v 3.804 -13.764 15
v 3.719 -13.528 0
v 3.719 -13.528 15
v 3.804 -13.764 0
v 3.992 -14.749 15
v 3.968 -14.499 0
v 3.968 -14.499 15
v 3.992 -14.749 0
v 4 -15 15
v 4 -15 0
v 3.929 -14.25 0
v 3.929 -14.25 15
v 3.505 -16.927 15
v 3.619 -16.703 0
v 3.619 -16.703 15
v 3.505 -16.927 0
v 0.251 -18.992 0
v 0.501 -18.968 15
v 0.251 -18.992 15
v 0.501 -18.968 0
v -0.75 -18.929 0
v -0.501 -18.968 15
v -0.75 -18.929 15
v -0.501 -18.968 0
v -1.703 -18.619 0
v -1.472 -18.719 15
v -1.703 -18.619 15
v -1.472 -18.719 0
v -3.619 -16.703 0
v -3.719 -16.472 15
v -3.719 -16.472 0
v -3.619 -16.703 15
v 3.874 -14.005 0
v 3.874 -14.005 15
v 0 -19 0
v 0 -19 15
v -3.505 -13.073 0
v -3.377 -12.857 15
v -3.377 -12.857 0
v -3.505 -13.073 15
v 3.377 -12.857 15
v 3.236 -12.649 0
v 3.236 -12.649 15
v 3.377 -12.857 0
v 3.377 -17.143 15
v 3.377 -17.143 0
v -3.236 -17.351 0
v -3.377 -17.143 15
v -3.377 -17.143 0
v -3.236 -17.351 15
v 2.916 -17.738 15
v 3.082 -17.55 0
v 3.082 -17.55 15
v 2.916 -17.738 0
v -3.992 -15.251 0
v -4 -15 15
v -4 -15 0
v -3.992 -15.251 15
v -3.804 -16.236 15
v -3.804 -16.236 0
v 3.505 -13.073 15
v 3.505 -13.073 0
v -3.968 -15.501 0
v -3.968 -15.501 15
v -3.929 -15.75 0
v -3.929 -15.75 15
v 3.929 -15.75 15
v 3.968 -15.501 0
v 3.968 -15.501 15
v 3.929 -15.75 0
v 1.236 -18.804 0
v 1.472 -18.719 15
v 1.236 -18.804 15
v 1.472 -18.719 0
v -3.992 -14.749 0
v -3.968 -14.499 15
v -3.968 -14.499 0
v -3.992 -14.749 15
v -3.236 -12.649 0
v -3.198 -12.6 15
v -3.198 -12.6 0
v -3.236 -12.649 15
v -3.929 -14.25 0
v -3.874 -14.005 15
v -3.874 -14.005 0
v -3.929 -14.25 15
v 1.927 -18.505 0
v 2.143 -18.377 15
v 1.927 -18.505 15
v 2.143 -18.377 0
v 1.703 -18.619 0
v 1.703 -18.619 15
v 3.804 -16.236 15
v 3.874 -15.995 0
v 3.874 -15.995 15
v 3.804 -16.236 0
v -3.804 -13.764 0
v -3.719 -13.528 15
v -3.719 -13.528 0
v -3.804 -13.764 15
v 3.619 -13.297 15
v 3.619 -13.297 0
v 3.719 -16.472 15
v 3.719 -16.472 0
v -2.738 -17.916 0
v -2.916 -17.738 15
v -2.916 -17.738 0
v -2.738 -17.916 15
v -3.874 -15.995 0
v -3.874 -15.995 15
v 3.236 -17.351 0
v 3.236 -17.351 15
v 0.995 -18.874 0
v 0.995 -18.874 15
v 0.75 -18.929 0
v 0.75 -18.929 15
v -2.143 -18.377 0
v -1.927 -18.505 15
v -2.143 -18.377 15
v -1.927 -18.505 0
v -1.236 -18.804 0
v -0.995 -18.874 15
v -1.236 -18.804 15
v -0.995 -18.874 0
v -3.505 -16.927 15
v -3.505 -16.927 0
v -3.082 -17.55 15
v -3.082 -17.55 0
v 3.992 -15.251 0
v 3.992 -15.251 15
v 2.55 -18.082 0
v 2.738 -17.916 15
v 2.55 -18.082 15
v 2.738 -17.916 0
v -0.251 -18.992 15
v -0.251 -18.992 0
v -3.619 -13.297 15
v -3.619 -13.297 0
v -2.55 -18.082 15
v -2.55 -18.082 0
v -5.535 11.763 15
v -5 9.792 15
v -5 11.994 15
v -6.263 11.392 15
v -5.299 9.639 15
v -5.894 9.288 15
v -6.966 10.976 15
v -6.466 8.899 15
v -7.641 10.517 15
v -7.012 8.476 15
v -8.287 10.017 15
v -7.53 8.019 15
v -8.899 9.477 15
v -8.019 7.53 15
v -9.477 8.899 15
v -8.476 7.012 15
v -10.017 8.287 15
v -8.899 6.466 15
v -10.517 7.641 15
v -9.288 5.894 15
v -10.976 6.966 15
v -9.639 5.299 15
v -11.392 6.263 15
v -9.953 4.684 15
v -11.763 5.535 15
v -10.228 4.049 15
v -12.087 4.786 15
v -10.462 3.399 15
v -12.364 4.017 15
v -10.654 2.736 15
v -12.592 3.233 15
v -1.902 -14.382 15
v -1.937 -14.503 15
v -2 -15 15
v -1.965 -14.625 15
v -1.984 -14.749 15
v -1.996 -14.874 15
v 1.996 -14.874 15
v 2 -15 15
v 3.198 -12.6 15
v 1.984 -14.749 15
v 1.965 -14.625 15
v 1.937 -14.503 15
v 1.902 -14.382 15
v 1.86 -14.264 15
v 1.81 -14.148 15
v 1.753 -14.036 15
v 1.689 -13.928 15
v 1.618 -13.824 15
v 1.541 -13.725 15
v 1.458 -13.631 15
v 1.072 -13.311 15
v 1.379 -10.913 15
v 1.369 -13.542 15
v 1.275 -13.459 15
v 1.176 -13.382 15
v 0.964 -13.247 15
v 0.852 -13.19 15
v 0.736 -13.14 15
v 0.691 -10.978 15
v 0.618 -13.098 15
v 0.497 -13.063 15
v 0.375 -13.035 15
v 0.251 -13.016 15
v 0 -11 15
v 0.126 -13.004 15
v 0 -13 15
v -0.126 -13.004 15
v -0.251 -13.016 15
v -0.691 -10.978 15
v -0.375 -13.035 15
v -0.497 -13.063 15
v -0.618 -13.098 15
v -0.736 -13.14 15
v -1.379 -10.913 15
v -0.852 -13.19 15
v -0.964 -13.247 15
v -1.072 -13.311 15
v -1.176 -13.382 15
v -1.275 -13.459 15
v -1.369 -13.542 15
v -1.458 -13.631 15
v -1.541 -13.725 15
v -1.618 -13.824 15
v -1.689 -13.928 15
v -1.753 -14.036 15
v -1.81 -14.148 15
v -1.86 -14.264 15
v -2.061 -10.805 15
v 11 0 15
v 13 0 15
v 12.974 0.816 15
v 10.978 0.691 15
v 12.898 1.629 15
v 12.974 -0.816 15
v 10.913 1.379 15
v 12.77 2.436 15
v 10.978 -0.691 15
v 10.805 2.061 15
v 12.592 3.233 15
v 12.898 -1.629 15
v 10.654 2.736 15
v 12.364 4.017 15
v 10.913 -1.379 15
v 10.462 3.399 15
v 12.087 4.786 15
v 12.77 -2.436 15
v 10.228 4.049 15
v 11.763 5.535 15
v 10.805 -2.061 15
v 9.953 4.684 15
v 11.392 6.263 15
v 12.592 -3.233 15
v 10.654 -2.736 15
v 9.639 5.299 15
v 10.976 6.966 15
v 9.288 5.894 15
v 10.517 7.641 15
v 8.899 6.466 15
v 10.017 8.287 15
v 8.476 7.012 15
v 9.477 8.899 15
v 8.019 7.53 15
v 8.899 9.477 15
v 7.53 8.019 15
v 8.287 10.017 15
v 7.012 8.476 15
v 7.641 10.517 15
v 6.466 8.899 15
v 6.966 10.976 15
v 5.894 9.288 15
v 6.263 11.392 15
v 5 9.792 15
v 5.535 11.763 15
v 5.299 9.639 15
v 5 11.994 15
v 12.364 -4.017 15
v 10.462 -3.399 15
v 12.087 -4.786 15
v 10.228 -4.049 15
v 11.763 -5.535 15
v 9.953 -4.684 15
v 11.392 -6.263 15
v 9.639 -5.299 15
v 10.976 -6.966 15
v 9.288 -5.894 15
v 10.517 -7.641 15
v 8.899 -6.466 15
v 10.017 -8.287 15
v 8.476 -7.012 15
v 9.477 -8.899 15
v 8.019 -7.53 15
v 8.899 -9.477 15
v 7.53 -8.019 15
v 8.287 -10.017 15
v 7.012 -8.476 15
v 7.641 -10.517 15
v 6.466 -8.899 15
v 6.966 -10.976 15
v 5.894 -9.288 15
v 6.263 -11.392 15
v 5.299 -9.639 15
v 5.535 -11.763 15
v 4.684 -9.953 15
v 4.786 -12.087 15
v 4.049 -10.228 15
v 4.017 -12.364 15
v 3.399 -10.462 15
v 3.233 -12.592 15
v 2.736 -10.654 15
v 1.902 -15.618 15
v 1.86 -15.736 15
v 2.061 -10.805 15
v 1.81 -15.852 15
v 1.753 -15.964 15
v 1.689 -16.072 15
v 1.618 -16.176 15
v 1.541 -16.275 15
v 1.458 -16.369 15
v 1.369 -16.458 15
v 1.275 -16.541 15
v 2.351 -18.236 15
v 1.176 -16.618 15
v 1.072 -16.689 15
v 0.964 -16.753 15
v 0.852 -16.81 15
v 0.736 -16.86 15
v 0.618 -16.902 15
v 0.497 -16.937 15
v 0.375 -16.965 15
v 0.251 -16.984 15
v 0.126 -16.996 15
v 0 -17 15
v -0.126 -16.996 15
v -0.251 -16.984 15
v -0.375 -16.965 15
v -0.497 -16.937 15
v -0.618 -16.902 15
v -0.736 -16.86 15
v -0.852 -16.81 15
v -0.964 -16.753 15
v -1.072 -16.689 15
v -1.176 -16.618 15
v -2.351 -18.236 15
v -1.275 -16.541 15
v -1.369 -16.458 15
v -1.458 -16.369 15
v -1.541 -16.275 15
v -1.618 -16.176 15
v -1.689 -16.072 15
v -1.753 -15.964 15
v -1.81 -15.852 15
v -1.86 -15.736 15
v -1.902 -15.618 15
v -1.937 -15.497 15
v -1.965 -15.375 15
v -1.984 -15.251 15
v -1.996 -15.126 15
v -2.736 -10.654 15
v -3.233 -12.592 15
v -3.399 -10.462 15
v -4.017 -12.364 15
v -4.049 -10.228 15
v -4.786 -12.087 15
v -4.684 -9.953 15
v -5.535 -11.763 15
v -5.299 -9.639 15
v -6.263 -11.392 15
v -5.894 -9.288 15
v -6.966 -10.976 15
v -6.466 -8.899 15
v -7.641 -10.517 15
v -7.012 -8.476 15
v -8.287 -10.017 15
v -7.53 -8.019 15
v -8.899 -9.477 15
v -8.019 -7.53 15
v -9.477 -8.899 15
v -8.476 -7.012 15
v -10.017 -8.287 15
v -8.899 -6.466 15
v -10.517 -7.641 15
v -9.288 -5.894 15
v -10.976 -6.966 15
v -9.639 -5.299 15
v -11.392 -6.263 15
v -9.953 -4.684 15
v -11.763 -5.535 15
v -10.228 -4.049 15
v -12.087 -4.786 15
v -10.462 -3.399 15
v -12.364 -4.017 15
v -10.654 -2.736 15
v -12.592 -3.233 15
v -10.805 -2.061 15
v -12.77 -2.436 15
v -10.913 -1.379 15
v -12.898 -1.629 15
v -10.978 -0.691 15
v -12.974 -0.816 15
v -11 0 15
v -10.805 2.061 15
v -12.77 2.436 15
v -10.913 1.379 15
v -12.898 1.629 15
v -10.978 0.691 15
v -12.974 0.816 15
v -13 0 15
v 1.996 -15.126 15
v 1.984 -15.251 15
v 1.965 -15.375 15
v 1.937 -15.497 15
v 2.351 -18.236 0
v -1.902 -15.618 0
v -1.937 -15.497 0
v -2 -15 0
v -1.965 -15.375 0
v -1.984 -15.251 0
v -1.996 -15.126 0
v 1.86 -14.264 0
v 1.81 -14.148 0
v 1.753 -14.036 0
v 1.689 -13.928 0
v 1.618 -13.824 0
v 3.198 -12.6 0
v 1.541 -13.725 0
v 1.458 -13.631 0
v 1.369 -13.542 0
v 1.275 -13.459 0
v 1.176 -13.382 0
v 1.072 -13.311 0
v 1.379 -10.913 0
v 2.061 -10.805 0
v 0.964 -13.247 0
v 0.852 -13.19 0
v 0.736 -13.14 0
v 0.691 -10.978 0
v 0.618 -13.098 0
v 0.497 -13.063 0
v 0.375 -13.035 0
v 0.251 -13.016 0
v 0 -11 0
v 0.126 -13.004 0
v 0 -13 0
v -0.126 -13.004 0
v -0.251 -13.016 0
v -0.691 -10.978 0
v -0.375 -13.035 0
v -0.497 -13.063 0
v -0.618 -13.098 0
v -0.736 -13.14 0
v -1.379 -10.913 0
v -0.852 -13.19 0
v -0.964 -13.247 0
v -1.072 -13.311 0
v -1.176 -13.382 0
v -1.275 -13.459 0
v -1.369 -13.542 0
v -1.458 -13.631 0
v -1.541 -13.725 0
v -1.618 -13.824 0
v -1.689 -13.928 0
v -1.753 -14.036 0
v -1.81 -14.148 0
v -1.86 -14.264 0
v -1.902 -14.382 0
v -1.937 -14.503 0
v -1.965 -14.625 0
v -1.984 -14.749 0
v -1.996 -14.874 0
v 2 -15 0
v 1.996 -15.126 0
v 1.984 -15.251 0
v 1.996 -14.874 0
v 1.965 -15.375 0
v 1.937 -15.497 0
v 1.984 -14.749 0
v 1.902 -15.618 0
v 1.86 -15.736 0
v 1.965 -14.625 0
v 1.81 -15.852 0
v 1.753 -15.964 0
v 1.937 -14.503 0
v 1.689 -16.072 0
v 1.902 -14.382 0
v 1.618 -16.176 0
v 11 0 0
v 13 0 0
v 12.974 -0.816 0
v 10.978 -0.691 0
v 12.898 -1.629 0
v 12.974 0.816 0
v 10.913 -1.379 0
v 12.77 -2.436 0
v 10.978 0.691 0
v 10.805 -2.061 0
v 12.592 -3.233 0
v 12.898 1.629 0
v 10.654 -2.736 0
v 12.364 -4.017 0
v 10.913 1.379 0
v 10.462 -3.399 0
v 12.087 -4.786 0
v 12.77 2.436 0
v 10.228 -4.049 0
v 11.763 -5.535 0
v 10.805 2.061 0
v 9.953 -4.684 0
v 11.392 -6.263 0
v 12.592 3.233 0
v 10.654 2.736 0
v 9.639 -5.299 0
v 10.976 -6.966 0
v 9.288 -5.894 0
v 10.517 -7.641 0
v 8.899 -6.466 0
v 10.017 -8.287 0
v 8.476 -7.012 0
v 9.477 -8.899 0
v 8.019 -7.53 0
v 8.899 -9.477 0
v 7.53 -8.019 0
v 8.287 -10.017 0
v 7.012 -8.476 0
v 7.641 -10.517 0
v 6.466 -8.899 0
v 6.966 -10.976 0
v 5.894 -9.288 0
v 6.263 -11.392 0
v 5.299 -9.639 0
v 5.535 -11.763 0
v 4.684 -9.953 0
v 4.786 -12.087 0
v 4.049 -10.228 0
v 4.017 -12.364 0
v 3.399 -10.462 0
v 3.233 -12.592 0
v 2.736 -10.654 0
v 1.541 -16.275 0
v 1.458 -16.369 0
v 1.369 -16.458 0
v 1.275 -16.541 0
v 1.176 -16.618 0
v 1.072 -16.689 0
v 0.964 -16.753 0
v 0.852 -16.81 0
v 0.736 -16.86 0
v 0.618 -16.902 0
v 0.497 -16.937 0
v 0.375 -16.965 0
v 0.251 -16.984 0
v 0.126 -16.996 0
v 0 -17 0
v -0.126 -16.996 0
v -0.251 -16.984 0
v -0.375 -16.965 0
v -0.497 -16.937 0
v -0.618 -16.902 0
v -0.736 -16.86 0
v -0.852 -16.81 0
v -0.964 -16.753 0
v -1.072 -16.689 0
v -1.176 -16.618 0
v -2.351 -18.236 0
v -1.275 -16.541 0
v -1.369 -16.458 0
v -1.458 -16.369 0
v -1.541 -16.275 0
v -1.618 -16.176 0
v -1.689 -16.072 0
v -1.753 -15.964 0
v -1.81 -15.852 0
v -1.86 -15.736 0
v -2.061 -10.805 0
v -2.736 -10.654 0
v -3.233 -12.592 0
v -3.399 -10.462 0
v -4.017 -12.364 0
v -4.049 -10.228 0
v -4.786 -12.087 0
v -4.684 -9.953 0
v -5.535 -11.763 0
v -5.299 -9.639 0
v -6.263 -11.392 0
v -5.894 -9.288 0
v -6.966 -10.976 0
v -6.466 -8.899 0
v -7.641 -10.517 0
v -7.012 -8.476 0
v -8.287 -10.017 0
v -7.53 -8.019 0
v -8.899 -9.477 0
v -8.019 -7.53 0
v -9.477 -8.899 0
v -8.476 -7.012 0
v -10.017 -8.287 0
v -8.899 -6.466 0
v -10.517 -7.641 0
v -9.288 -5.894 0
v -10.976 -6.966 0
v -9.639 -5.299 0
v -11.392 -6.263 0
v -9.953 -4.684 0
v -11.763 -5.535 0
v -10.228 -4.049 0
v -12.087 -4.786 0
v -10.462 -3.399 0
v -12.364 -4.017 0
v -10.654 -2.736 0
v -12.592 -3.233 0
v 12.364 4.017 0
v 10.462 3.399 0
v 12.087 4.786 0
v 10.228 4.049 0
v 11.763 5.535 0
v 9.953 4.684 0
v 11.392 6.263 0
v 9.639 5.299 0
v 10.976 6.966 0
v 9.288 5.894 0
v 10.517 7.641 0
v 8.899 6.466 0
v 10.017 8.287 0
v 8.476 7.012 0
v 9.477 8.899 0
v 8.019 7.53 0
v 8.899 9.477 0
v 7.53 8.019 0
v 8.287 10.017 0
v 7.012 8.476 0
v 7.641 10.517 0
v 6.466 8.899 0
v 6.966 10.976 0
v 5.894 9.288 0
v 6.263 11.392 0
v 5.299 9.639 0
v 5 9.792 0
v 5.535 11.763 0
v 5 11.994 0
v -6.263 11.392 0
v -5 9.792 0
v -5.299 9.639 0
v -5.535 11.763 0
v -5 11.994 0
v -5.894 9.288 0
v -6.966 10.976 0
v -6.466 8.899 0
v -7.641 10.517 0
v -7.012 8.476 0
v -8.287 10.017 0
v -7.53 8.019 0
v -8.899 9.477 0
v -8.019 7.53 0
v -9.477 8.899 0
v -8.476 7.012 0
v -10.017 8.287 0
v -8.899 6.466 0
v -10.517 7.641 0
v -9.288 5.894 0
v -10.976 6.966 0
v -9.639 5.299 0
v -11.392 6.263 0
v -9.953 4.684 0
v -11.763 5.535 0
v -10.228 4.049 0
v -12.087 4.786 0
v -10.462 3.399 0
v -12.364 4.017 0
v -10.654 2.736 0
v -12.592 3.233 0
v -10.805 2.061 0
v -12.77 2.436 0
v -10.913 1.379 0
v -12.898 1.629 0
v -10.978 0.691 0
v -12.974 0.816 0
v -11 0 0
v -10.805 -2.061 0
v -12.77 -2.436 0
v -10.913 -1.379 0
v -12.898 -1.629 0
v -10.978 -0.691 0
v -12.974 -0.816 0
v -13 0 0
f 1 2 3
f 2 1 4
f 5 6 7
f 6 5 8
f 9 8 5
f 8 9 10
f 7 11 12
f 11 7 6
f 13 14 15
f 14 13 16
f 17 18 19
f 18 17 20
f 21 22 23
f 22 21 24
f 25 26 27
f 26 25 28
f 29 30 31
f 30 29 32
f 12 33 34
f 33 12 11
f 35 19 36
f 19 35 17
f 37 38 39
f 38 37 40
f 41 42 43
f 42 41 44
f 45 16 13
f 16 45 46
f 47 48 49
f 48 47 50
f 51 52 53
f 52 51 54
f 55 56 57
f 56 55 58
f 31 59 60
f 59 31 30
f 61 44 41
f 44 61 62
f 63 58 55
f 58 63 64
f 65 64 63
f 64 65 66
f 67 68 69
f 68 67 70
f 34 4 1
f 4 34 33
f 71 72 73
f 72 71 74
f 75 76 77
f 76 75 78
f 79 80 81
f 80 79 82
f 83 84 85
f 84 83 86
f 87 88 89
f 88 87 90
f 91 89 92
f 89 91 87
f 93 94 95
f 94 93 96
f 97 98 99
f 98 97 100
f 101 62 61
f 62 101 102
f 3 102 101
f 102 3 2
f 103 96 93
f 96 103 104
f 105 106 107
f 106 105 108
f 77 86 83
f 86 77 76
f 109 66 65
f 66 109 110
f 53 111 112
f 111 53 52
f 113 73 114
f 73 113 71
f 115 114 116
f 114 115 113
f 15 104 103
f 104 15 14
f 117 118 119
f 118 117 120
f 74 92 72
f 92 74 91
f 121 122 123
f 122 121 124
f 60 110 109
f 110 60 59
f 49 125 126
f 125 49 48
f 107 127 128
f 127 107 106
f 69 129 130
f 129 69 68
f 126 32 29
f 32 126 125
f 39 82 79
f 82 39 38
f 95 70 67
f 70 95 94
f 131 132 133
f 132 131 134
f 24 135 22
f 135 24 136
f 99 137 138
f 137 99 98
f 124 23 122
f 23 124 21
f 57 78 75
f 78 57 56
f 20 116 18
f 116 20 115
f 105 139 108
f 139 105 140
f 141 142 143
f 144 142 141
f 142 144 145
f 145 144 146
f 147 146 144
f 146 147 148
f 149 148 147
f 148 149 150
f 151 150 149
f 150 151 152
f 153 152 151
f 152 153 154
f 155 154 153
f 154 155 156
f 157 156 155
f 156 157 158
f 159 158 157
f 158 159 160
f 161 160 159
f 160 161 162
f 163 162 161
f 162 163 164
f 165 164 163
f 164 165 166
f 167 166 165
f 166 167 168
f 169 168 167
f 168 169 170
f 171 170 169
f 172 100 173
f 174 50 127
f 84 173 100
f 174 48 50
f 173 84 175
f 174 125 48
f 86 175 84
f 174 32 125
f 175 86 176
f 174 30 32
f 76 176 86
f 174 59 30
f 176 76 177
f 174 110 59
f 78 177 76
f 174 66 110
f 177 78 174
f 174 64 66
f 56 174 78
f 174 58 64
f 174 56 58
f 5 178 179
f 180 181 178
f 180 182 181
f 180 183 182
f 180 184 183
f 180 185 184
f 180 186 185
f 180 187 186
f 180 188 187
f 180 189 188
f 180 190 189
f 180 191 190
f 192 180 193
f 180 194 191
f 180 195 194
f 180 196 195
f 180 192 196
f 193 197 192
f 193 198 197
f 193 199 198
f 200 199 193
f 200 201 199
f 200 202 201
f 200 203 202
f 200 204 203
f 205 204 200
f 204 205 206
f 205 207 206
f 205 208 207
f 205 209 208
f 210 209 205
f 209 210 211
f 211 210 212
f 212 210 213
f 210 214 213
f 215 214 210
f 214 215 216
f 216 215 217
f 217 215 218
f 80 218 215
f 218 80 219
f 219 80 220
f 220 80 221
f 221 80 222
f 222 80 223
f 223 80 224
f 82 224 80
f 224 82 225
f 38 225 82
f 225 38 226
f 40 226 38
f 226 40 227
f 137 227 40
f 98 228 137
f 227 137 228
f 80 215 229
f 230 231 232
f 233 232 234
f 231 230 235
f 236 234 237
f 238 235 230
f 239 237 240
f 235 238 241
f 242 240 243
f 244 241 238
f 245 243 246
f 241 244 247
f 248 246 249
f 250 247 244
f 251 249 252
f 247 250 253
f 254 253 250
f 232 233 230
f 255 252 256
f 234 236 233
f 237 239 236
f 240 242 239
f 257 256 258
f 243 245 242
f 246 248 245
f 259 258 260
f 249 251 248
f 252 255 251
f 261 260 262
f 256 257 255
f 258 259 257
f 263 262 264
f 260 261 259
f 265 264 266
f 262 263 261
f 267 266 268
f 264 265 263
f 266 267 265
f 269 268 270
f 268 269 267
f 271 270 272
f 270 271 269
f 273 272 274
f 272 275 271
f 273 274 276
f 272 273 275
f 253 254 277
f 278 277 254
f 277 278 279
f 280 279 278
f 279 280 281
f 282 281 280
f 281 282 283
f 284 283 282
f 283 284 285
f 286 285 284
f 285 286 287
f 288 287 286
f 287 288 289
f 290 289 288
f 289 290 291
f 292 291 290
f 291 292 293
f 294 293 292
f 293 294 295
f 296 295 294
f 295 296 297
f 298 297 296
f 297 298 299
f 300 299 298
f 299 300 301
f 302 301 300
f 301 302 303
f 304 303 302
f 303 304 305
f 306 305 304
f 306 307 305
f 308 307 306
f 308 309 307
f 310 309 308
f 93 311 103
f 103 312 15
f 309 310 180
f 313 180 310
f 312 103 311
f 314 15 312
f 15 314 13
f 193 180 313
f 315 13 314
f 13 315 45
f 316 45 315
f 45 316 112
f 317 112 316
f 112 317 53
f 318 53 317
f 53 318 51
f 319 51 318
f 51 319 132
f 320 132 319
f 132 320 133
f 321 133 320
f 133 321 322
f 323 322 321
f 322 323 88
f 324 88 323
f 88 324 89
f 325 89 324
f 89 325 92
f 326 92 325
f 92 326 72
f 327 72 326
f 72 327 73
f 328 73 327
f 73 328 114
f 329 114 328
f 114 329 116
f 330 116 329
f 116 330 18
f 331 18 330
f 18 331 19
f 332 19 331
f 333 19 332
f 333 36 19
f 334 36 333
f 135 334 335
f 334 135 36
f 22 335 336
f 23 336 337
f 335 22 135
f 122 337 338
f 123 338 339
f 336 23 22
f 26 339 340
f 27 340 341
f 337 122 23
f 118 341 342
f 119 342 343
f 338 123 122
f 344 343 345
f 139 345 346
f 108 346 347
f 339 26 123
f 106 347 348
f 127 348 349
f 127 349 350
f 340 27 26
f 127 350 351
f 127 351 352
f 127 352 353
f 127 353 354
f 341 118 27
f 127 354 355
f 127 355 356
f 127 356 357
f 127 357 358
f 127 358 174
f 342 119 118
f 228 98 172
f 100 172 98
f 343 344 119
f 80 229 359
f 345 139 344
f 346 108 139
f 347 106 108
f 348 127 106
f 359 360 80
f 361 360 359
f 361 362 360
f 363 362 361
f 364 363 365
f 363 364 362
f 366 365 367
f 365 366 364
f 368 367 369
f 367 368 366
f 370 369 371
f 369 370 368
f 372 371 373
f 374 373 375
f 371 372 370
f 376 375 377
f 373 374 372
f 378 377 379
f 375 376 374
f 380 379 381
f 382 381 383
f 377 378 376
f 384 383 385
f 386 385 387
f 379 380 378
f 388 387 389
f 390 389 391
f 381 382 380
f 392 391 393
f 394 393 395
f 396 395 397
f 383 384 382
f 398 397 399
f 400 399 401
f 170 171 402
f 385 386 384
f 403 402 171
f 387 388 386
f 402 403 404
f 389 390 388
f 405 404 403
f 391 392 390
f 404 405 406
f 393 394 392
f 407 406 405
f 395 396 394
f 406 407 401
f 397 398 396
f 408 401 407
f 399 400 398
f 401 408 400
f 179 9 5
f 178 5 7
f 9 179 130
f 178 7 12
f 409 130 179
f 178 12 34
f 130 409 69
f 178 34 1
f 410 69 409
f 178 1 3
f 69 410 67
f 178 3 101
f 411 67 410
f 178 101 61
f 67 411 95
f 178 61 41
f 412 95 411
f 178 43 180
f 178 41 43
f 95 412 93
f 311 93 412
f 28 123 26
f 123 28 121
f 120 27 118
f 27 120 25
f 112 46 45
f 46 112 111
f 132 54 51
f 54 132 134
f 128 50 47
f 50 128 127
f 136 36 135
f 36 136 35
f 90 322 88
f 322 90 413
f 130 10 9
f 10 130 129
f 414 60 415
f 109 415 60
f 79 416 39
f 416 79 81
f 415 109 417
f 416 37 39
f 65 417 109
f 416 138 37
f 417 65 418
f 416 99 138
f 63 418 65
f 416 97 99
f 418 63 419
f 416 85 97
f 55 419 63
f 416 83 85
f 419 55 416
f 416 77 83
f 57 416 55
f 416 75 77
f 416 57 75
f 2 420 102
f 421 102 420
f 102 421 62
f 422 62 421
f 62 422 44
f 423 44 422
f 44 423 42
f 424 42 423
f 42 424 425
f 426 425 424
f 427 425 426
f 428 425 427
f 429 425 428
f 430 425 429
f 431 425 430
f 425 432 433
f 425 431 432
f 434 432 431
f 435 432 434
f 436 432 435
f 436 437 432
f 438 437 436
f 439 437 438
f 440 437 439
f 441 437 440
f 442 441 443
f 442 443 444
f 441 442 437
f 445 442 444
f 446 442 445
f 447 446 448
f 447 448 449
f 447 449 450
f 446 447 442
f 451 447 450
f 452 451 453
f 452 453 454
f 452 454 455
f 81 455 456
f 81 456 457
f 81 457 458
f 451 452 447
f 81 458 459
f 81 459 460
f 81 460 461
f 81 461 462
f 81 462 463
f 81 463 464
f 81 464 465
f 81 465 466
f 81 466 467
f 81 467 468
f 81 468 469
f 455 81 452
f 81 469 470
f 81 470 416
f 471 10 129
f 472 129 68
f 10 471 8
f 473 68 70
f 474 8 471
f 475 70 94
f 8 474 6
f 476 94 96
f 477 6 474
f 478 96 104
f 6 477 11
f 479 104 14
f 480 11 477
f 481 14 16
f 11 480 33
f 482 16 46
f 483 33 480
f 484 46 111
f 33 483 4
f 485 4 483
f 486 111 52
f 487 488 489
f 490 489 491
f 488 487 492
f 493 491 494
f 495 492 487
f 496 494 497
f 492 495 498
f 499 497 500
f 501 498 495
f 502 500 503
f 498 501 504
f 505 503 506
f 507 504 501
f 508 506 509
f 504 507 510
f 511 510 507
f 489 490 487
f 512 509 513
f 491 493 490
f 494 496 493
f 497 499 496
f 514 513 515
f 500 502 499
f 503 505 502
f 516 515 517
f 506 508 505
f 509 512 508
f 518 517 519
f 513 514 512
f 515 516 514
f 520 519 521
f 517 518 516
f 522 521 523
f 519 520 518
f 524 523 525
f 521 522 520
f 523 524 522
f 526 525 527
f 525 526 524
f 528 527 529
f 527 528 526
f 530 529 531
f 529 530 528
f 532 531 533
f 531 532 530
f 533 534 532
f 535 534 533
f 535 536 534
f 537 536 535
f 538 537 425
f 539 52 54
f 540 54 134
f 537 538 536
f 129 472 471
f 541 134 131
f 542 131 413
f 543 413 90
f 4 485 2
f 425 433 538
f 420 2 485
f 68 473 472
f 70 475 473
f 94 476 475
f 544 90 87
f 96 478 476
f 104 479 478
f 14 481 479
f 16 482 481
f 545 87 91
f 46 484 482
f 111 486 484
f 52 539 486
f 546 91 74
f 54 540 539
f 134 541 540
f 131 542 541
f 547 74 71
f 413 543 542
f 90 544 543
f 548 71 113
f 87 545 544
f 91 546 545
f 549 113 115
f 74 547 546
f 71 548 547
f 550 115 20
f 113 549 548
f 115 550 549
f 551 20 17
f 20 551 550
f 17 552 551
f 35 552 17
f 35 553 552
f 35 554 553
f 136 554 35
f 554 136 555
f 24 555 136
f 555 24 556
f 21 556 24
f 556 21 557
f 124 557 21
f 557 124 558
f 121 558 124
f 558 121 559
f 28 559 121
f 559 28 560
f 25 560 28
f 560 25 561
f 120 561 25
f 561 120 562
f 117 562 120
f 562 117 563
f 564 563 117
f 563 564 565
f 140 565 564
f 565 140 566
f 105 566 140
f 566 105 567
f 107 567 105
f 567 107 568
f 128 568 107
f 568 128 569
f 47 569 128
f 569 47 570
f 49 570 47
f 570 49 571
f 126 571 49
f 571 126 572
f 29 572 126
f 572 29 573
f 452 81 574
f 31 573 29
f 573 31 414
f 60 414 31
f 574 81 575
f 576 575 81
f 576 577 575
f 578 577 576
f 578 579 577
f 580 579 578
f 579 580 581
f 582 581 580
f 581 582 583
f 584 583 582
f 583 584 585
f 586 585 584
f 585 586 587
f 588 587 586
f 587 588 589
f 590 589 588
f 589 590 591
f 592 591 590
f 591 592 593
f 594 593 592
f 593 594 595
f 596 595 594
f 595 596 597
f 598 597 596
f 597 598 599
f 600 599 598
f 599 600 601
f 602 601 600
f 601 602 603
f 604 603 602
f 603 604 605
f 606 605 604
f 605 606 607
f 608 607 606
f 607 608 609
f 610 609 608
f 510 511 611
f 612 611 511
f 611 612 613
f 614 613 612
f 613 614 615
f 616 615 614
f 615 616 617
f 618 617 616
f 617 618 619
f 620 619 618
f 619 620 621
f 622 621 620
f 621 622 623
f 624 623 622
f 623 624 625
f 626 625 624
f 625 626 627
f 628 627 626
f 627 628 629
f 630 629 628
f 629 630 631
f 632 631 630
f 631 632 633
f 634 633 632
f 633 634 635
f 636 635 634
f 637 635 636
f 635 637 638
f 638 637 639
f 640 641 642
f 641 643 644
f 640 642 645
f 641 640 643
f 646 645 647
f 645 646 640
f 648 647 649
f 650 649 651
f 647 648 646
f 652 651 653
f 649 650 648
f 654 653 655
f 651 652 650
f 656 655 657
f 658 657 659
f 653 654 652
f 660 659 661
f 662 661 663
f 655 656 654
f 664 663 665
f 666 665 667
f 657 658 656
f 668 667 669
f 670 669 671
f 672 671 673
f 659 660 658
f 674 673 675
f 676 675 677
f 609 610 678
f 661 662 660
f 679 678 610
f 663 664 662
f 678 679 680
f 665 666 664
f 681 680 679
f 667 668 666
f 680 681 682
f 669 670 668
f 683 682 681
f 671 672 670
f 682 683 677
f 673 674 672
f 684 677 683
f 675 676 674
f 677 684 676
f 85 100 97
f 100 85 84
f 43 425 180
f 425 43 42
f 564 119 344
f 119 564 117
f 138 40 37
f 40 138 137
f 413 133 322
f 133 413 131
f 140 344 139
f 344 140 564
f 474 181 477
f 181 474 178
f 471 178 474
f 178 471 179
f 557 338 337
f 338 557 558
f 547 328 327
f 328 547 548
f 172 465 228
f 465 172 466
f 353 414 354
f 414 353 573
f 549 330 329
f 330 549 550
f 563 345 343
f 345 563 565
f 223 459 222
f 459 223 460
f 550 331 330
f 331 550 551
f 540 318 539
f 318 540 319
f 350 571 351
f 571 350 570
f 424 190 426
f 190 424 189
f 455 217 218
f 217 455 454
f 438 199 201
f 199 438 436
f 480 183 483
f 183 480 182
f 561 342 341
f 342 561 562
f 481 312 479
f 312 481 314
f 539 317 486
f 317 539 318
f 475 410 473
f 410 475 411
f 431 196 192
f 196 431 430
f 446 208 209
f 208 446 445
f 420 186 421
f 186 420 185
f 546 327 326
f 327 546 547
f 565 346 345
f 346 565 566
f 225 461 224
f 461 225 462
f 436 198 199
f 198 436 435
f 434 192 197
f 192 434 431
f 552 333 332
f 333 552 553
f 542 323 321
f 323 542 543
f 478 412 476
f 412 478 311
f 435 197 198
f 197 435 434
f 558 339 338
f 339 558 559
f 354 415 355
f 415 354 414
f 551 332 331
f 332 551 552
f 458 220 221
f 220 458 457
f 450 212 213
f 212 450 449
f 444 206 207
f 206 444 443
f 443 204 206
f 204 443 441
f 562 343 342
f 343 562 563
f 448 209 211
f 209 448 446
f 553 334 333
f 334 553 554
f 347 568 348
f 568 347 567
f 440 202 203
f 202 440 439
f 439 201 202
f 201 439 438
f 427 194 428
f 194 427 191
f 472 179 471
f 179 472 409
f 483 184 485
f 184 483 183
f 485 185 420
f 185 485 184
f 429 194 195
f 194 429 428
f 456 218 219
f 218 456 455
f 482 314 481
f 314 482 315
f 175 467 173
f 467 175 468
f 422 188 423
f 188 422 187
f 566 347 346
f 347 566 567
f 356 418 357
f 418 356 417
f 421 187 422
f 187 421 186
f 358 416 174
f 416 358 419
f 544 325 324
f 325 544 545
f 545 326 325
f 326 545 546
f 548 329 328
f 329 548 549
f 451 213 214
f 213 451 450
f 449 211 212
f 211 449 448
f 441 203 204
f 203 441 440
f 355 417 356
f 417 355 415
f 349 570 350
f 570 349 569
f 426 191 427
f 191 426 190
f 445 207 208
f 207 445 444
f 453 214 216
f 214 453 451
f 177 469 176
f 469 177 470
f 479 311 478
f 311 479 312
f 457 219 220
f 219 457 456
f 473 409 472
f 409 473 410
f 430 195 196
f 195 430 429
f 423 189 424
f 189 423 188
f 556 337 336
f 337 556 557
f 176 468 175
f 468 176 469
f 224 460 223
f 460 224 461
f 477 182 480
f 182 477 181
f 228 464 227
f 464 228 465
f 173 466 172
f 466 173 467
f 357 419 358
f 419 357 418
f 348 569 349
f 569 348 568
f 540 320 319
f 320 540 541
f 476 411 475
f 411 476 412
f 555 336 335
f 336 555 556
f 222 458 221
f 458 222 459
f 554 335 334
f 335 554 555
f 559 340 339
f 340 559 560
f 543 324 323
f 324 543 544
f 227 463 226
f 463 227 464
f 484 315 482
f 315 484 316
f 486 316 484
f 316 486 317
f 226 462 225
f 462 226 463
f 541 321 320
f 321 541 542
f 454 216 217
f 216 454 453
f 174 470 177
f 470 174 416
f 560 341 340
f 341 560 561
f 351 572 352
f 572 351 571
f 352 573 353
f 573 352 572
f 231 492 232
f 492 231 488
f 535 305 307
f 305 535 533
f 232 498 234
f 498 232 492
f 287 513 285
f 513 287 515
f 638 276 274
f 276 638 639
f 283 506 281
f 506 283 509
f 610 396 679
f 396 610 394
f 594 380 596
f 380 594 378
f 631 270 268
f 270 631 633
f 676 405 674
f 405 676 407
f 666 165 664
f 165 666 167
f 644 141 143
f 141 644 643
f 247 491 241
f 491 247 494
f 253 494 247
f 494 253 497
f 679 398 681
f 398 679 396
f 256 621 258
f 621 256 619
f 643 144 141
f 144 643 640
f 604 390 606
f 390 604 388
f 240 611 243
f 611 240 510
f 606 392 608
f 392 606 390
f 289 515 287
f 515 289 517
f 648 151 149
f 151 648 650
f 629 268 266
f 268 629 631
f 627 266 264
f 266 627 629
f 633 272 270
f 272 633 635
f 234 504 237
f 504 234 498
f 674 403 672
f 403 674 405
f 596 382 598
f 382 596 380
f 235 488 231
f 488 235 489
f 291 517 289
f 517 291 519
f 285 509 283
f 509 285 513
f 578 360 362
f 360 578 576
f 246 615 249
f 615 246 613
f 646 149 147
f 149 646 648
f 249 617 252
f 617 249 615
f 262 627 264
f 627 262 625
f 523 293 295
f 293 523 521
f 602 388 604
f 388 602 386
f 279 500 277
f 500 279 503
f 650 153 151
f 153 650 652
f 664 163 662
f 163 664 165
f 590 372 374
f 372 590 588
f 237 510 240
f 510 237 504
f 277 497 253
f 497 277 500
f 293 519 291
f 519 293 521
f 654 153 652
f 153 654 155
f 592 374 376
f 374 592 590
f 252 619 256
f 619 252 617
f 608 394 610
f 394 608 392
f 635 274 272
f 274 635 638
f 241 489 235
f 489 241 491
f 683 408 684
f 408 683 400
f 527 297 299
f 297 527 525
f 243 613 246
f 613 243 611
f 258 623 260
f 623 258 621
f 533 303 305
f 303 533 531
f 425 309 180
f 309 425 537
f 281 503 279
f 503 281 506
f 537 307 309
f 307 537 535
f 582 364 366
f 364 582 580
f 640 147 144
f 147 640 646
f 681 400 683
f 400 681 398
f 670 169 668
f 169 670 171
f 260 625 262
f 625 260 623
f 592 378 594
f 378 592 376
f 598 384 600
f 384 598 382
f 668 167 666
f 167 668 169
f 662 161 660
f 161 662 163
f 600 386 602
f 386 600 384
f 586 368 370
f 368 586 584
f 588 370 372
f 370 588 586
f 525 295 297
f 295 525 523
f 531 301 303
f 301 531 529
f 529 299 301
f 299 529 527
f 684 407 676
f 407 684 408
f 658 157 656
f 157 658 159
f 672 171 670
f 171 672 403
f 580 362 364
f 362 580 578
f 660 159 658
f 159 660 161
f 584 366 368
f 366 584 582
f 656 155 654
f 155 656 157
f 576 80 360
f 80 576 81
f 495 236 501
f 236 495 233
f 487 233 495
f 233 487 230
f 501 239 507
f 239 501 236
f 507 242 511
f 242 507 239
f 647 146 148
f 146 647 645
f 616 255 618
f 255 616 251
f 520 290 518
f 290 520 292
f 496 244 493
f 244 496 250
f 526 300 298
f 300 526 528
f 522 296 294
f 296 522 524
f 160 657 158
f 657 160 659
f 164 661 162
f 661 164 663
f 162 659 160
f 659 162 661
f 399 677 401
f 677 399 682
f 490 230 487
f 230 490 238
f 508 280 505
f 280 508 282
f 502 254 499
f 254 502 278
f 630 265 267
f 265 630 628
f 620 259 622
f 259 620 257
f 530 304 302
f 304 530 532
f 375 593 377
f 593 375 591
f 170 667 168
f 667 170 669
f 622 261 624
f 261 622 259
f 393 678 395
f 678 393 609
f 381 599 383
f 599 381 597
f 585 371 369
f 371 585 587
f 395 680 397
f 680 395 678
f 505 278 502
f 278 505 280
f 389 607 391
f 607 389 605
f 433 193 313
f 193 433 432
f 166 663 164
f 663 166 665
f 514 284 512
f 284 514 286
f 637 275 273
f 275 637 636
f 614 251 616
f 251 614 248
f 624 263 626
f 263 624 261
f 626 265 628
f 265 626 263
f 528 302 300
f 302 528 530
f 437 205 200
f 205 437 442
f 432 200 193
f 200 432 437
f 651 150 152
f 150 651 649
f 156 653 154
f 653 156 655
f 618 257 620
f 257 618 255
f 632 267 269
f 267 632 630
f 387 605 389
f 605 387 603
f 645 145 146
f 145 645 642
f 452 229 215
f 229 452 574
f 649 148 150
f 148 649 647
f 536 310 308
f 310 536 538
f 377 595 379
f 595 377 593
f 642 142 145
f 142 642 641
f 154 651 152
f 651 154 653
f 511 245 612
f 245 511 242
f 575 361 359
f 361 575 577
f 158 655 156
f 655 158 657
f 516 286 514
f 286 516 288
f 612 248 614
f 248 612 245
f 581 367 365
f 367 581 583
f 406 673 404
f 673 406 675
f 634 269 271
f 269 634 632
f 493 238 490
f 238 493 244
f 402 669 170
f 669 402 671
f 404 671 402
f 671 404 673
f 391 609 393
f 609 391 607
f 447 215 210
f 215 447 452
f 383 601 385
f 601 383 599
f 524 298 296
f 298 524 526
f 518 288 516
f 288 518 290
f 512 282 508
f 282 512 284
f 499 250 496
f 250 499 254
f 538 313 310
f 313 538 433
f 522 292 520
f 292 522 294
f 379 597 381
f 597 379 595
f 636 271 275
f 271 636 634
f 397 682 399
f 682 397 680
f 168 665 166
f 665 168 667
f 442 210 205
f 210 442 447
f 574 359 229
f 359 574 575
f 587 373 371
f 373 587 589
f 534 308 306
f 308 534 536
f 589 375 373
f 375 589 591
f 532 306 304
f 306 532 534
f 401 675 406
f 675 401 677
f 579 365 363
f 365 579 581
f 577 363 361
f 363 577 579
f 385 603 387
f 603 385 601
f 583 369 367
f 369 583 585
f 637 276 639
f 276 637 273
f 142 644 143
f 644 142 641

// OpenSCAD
LENGTH = 15;

$fn=100;

union(){

	// clamp
	difference(){
		cylinder(r=13,h=LENGTH);

		// hole
		translate([0,0,-1]){
			cylinder(r=(22/2),h=LENGTH+2);
		}

		// slot
		translate([-5,0,-1]){
			cube([10,20,LENGTH+2]);
		}
	}

	// blower screw mount
	translate([0,-15,0]){
		difference(){

			// body
			cylinder(r=4,h=LENGTH);
	
			// hole
			translate([0,0,-1]){
				cylinder(r=2,h=LENGTH+2);
			}
		}
	}
}
